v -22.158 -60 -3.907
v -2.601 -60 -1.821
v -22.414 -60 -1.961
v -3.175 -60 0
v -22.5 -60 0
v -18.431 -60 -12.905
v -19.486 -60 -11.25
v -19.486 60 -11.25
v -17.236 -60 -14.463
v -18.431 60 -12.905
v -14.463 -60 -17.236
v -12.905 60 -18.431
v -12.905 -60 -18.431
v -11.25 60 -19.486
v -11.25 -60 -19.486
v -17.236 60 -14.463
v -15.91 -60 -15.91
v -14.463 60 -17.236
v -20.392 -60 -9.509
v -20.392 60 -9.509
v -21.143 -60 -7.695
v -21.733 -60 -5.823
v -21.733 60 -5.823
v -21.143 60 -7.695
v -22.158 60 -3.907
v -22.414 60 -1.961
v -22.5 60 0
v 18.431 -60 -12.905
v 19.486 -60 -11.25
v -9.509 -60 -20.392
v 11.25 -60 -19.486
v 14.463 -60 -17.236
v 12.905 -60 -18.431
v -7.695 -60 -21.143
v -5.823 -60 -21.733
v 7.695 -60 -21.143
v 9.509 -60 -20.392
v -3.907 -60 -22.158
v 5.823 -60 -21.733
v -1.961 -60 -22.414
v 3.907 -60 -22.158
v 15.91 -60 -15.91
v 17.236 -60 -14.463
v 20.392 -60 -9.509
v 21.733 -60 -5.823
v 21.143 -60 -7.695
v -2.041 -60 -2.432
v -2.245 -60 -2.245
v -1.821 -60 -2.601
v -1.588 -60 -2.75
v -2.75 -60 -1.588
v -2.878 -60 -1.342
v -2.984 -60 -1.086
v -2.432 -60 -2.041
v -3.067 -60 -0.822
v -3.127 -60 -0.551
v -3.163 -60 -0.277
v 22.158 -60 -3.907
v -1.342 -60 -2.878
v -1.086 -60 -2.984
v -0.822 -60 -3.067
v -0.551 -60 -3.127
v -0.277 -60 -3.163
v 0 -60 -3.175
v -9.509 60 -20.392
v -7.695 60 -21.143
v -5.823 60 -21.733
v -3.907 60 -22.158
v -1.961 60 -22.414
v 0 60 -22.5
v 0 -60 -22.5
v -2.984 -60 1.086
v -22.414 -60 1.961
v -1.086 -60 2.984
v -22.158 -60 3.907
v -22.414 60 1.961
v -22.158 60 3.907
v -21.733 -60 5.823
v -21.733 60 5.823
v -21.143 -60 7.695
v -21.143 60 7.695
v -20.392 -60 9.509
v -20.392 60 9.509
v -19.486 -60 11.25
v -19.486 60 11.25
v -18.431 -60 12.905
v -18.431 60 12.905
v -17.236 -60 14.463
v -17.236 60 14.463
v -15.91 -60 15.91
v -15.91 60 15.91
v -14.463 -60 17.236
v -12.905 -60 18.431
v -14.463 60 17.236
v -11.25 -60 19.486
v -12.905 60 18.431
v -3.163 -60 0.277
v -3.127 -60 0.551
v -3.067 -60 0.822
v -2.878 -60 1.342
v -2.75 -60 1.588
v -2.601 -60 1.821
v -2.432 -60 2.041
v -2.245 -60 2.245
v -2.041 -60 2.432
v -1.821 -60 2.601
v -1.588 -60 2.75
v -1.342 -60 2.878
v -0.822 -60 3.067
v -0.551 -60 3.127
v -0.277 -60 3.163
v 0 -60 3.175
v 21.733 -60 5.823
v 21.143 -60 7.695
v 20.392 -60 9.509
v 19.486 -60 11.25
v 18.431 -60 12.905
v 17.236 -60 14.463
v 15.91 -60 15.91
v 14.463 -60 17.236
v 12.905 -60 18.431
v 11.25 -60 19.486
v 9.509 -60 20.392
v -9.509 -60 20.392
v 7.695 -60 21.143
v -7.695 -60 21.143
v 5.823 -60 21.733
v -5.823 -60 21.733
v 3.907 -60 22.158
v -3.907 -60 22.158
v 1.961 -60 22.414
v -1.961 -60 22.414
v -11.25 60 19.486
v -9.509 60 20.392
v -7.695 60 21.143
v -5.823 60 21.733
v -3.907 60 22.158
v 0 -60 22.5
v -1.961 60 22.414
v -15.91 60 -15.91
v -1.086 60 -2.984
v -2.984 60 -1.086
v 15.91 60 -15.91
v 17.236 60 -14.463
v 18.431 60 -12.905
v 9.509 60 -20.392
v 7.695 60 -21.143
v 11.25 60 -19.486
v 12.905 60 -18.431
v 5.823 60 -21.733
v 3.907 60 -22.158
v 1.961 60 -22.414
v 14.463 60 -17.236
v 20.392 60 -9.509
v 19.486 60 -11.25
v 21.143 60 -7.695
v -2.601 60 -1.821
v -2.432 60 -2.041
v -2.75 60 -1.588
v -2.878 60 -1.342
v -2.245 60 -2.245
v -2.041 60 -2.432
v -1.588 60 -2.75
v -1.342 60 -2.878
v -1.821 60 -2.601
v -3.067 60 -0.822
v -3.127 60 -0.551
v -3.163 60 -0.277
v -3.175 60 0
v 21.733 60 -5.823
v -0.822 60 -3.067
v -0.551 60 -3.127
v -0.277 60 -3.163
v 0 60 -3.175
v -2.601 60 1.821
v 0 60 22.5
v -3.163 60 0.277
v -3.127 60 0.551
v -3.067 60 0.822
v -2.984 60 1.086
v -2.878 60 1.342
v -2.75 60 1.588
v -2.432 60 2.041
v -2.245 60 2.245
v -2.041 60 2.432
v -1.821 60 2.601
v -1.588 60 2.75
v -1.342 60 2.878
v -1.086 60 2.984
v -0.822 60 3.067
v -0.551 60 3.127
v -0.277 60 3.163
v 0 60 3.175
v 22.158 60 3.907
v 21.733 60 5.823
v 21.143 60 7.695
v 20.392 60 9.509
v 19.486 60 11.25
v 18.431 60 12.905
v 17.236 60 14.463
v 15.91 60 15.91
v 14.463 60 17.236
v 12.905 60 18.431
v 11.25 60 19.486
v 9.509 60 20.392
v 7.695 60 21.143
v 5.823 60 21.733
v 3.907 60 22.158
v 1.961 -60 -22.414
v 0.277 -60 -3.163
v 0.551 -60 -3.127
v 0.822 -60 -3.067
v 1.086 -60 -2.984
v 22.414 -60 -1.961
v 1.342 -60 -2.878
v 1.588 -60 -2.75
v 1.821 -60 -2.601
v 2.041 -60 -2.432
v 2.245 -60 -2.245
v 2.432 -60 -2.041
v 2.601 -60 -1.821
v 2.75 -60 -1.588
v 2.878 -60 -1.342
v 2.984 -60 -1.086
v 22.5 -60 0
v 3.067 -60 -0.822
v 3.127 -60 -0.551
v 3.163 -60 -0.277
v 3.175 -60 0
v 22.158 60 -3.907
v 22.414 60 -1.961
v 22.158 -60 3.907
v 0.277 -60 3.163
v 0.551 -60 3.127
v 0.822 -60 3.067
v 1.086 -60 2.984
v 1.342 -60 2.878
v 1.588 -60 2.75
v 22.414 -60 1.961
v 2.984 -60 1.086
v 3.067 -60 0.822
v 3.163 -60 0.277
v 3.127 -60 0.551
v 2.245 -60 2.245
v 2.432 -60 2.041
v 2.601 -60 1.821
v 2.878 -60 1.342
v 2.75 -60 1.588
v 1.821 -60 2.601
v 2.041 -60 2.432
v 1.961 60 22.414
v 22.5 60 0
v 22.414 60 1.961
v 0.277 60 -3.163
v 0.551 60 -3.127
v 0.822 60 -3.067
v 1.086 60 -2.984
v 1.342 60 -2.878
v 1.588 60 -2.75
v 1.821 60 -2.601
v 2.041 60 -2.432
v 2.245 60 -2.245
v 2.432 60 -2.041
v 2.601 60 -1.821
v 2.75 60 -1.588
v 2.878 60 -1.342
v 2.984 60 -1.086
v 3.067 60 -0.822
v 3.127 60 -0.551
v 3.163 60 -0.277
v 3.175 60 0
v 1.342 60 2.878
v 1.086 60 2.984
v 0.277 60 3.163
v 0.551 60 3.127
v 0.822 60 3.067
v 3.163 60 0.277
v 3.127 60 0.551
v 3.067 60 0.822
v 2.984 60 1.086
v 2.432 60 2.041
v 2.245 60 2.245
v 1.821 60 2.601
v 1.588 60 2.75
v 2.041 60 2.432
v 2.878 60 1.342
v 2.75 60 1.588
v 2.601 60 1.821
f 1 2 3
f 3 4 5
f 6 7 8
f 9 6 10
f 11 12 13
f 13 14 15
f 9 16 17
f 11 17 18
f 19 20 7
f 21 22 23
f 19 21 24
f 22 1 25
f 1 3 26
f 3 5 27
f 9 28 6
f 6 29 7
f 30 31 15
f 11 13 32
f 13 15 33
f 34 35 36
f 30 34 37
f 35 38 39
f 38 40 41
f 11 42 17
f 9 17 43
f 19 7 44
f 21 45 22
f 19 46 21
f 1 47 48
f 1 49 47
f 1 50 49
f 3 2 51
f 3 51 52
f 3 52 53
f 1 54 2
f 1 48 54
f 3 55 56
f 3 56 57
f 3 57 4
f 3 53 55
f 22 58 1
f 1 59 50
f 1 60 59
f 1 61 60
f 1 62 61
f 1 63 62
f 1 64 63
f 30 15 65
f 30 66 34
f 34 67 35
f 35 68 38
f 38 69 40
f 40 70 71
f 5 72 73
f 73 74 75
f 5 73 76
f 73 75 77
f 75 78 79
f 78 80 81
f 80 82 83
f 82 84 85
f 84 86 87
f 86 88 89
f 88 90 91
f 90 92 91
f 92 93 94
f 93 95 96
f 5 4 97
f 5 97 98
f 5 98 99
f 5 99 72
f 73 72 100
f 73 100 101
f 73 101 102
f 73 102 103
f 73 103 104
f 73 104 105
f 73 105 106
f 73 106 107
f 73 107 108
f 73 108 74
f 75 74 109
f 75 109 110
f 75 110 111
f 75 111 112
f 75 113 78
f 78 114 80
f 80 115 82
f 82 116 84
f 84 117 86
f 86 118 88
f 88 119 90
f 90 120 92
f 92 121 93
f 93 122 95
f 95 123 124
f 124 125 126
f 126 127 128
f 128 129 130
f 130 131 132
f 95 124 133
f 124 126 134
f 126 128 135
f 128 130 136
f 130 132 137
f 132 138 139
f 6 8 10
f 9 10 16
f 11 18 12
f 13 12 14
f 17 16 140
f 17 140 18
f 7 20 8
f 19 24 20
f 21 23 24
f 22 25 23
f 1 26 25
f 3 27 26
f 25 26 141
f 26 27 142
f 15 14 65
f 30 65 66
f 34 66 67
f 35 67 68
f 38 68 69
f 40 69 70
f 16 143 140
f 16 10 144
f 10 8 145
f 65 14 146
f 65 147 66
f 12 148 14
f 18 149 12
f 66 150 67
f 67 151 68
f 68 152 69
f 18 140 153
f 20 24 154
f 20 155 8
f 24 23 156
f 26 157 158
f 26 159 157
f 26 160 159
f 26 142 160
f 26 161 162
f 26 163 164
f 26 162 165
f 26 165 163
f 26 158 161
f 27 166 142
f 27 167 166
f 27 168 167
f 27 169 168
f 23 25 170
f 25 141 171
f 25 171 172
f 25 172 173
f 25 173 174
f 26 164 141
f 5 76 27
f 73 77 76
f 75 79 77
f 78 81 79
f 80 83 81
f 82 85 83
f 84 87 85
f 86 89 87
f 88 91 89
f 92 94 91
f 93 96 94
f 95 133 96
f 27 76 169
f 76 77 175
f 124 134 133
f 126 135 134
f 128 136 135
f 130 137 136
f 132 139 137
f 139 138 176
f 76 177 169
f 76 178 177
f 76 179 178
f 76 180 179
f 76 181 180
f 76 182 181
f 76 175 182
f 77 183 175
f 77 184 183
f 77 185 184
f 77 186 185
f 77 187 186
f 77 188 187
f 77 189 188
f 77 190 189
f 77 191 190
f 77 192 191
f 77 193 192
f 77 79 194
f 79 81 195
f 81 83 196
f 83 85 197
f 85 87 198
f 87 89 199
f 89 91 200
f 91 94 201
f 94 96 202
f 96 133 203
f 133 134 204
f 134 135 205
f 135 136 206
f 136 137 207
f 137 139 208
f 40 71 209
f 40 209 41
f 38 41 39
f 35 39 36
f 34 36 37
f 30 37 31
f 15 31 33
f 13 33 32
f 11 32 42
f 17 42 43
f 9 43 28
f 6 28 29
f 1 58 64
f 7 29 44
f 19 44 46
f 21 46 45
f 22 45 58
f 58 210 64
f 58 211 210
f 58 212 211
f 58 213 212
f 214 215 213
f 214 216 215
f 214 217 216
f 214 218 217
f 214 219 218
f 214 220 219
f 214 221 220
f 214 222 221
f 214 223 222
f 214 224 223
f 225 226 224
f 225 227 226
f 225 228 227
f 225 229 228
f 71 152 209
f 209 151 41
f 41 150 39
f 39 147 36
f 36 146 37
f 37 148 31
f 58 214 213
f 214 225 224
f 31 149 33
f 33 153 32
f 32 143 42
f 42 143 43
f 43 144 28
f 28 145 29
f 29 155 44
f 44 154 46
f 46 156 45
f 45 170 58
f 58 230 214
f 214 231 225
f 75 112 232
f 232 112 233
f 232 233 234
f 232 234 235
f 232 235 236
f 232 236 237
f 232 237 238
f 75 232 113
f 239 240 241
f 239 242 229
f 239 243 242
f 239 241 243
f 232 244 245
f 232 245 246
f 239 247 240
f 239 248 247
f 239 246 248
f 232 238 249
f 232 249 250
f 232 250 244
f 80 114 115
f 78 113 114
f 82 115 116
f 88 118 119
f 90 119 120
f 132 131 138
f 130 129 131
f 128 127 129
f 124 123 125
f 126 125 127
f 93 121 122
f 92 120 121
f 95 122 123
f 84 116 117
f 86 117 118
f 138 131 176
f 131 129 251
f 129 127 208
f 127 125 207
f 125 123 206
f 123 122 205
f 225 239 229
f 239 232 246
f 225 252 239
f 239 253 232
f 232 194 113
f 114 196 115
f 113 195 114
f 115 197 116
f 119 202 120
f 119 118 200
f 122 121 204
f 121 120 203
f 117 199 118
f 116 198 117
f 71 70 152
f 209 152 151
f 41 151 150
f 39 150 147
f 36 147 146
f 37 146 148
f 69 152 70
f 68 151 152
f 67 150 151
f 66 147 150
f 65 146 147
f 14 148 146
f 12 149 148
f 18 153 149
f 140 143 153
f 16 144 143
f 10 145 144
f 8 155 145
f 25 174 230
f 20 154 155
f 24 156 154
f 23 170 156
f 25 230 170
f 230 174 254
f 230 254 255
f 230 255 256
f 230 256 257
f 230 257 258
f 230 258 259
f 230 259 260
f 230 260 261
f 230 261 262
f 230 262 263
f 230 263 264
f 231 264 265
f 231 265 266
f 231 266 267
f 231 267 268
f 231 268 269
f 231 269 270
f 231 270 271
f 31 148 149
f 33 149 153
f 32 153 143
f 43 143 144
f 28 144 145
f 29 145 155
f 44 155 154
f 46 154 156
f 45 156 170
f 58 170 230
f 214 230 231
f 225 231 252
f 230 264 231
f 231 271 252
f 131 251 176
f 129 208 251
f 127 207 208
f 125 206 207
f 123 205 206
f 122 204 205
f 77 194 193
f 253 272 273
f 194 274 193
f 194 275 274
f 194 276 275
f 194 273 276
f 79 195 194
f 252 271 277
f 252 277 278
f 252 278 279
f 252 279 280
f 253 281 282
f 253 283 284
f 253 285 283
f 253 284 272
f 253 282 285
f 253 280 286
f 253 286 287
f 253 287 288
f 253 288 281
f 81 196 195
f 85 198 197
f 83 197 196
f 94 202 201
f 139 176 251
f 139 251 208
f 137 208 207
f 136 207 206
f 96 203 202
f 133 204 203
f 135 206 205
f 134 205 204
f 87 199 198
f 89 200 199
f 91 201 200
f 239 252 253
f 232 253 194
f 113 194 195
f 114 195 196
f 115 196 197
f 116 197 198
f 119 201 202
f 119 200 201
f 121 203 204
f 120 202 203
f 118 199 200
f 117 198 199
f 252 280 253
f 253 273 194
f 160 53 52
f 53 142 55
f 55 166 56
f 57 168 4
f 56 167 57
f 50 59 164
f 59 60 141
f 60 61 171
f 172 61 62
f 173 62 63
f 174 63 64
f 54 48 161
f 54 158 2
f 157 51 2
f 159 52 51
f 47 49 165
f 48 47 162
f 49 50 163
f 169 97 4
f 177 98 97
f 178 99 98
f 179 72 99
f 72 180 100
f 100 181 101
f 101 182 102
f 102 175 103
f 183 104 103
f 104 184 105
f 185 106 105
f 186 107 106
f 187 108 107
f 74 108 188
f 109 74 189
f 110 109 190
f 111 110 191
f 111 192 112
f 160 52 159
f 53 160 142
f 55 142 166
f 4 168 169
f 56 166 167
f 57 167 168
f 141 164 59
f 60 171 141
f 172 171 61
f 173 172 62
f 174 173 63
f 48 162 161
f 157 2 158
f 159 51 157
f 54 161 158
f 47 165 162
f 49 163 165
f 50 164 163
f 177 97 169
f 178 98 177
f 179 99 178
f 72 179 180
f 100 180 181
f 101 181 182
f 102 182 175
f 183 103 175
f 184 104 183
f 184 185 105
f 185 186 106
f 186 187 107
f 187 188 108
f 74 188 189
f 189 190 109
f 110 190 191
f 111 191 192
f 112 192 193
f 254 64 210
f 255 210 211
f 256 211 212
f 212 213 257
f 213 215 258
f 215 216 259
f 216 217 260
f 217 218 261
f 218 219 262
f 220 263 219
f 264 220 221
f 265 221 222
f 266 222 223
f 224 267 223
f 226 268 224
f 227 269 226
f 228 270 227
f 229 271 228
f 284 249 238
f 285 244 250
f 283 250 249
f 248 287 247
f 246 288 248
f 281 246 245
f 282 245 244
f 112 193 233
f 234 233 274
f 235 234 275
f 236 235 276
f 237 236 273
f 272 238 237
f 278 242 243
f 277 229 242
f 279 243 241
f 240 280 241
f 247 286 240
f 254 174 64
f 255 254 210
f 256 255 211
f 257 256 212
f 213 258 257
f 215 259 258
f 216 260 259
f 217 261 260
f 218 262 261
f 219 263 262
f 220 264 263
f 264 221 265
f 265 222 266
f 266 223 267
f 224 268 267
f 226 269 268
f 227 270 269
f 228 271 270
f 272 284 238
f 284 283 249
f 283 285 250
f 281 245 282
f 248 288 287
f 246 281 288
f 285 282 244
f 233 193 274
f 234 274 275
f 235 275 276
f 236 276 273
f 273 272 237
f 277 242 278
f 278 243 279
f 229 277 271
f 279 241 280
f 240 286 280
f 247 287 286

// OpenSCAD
// Prototype roller: 120 mm capture width, 45 mm diameter, 6.35 mm bore.
part_override = "roller";
include <collector_curved_scoop.scad>
